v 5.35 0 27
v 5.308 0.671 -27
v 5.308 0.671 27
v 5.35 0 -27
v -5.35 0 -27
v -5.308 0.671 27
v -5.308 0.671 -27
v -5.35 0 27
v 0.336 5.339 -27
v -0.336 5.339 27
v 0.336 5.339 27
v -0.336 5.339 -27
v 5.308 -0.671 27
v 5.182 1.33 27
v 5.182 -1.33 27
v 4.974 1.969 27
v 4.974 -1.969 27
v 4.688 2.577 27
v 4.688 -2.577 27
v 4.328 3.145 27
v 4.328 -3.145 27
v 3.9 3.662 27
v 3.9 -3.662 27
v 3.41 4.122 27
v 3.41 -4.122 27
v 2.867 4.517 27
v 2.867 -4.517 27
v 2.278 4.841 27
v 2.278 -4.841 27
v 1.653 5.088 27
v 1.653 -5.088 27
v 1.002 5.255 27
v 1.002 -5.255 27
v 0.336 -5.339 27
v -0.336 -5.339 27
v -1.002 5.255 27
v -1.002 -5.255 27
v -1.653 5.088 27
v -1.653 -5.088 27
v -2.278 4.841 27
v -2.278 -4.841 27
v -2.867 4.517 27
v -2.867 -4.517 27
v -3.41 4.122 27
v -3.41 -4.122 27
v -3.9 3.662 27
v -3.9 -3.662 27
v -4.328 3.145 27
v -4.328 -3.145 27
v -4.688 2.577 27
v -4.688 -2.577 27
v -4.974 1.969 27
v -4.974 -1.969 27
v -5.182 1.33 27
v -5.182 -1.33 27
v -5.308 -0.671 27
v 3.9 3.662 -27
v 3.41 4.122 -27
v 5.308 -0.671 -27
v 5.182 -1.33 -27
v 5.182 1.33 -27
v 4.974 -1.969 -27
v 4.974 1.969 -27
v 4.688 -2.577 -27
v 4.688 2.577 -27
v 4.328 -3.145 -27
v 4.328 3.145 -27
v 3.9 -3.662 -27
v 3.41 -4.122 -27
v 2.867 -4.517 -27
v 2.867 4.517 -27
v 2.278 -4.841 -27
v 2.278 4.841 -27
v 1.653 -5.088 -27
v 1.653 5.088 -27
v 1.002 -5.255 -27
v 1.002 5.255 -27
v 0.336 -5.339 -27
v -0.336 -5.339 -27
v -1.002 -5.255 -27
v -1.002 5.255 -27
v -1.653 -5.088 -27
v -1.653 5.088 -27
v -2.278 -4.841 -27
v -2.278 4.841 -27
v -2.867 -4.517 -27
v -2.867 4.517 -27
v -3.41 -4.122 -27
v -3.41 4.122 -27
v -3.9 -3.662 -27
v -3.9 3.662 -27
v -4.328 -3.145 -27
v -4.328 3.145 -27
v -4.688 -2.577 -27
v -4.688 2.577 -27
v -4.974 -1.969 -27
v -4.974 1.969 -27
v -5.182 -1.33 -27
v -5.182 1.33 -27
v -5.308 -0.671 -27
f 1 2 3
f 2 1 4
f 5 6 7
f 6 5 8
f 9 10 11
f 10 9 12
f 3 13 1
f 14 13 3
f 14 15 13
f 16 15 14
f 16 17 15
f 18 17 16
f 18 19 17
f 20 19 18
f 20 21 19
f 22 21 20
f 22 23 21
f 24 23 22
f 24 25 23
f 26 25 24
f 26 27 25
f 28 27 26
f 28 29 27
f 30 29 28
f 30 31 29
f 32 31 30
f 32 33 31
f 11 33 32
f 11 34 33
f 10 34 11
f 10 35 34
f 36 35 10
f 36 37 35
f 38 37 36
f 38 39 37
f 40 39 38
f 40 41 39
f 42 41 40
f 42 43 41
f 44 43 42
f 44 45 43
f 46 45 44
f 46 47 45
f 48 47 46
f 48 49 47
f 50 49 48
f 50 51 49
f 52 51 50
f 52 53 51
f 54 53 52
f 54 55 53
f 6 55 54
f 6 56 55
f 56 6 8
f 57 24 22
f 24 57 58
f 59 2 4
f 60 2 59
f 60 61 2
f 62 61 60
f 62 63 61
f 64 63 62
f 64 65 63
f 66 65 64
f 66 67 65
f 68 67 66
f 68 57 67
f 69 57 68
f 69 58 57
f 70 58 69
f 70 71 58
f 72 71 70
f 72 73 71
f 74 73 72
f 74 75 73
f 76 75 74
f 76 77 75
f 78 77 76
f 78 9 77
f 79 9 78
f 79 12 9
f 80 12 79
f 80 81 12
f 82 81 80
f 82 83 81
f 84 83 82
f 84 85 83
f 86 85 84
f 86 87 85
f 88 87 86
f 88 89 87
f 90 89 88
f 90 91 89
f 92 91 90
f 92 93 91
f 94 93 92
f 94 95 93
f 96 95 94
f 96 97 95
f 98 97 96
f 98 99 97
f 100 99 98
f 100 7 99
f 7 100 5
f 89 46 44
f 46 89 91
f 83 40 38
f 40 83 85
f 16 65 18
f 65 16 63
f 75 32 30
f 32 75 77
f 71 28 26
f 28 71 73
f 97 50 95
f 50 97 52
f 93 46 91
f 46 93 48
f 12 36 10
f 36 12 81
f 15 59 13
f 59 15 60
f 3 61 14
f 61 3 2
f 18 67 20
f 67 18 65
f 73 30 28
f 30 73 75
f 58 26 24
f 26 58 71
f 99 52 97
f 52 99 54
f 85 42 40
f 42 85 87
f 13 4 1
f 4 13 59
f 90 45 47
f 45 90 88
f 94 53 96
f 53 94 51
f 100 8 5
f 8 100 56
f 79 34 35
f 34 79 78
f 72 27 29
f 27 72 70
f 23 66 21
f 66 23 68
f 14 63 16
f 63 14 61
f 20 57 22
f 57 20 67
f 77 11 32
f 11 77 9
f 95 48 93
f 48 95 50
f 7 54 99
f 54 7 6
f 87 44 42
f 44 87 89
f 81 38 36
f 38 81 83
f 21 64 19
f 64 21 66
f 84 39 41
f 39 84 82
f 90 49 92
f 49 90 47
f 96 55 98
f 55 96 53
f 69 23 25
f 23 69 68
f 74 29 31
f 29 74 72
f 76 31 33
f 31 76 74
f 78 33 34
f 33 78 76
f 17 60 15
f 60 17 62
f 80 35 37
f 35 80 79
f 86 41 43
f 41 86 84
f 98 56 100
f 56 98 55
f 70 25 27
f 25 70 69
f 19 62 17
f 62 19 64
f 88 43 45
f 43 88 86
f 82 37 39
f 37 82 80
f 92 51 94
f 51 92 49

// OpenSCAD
$fn = 50;


difference() {
	union() {
		translate(v = [0, 0, -27.0000000000]) {
			cylinder(h = 54, r = 5.3500000000);
		}
	}
	union() {
		translate(v = [0, 0, -100.0000000000]) {
			cylinder(h = 200, r = 0);
		}
	}
}
